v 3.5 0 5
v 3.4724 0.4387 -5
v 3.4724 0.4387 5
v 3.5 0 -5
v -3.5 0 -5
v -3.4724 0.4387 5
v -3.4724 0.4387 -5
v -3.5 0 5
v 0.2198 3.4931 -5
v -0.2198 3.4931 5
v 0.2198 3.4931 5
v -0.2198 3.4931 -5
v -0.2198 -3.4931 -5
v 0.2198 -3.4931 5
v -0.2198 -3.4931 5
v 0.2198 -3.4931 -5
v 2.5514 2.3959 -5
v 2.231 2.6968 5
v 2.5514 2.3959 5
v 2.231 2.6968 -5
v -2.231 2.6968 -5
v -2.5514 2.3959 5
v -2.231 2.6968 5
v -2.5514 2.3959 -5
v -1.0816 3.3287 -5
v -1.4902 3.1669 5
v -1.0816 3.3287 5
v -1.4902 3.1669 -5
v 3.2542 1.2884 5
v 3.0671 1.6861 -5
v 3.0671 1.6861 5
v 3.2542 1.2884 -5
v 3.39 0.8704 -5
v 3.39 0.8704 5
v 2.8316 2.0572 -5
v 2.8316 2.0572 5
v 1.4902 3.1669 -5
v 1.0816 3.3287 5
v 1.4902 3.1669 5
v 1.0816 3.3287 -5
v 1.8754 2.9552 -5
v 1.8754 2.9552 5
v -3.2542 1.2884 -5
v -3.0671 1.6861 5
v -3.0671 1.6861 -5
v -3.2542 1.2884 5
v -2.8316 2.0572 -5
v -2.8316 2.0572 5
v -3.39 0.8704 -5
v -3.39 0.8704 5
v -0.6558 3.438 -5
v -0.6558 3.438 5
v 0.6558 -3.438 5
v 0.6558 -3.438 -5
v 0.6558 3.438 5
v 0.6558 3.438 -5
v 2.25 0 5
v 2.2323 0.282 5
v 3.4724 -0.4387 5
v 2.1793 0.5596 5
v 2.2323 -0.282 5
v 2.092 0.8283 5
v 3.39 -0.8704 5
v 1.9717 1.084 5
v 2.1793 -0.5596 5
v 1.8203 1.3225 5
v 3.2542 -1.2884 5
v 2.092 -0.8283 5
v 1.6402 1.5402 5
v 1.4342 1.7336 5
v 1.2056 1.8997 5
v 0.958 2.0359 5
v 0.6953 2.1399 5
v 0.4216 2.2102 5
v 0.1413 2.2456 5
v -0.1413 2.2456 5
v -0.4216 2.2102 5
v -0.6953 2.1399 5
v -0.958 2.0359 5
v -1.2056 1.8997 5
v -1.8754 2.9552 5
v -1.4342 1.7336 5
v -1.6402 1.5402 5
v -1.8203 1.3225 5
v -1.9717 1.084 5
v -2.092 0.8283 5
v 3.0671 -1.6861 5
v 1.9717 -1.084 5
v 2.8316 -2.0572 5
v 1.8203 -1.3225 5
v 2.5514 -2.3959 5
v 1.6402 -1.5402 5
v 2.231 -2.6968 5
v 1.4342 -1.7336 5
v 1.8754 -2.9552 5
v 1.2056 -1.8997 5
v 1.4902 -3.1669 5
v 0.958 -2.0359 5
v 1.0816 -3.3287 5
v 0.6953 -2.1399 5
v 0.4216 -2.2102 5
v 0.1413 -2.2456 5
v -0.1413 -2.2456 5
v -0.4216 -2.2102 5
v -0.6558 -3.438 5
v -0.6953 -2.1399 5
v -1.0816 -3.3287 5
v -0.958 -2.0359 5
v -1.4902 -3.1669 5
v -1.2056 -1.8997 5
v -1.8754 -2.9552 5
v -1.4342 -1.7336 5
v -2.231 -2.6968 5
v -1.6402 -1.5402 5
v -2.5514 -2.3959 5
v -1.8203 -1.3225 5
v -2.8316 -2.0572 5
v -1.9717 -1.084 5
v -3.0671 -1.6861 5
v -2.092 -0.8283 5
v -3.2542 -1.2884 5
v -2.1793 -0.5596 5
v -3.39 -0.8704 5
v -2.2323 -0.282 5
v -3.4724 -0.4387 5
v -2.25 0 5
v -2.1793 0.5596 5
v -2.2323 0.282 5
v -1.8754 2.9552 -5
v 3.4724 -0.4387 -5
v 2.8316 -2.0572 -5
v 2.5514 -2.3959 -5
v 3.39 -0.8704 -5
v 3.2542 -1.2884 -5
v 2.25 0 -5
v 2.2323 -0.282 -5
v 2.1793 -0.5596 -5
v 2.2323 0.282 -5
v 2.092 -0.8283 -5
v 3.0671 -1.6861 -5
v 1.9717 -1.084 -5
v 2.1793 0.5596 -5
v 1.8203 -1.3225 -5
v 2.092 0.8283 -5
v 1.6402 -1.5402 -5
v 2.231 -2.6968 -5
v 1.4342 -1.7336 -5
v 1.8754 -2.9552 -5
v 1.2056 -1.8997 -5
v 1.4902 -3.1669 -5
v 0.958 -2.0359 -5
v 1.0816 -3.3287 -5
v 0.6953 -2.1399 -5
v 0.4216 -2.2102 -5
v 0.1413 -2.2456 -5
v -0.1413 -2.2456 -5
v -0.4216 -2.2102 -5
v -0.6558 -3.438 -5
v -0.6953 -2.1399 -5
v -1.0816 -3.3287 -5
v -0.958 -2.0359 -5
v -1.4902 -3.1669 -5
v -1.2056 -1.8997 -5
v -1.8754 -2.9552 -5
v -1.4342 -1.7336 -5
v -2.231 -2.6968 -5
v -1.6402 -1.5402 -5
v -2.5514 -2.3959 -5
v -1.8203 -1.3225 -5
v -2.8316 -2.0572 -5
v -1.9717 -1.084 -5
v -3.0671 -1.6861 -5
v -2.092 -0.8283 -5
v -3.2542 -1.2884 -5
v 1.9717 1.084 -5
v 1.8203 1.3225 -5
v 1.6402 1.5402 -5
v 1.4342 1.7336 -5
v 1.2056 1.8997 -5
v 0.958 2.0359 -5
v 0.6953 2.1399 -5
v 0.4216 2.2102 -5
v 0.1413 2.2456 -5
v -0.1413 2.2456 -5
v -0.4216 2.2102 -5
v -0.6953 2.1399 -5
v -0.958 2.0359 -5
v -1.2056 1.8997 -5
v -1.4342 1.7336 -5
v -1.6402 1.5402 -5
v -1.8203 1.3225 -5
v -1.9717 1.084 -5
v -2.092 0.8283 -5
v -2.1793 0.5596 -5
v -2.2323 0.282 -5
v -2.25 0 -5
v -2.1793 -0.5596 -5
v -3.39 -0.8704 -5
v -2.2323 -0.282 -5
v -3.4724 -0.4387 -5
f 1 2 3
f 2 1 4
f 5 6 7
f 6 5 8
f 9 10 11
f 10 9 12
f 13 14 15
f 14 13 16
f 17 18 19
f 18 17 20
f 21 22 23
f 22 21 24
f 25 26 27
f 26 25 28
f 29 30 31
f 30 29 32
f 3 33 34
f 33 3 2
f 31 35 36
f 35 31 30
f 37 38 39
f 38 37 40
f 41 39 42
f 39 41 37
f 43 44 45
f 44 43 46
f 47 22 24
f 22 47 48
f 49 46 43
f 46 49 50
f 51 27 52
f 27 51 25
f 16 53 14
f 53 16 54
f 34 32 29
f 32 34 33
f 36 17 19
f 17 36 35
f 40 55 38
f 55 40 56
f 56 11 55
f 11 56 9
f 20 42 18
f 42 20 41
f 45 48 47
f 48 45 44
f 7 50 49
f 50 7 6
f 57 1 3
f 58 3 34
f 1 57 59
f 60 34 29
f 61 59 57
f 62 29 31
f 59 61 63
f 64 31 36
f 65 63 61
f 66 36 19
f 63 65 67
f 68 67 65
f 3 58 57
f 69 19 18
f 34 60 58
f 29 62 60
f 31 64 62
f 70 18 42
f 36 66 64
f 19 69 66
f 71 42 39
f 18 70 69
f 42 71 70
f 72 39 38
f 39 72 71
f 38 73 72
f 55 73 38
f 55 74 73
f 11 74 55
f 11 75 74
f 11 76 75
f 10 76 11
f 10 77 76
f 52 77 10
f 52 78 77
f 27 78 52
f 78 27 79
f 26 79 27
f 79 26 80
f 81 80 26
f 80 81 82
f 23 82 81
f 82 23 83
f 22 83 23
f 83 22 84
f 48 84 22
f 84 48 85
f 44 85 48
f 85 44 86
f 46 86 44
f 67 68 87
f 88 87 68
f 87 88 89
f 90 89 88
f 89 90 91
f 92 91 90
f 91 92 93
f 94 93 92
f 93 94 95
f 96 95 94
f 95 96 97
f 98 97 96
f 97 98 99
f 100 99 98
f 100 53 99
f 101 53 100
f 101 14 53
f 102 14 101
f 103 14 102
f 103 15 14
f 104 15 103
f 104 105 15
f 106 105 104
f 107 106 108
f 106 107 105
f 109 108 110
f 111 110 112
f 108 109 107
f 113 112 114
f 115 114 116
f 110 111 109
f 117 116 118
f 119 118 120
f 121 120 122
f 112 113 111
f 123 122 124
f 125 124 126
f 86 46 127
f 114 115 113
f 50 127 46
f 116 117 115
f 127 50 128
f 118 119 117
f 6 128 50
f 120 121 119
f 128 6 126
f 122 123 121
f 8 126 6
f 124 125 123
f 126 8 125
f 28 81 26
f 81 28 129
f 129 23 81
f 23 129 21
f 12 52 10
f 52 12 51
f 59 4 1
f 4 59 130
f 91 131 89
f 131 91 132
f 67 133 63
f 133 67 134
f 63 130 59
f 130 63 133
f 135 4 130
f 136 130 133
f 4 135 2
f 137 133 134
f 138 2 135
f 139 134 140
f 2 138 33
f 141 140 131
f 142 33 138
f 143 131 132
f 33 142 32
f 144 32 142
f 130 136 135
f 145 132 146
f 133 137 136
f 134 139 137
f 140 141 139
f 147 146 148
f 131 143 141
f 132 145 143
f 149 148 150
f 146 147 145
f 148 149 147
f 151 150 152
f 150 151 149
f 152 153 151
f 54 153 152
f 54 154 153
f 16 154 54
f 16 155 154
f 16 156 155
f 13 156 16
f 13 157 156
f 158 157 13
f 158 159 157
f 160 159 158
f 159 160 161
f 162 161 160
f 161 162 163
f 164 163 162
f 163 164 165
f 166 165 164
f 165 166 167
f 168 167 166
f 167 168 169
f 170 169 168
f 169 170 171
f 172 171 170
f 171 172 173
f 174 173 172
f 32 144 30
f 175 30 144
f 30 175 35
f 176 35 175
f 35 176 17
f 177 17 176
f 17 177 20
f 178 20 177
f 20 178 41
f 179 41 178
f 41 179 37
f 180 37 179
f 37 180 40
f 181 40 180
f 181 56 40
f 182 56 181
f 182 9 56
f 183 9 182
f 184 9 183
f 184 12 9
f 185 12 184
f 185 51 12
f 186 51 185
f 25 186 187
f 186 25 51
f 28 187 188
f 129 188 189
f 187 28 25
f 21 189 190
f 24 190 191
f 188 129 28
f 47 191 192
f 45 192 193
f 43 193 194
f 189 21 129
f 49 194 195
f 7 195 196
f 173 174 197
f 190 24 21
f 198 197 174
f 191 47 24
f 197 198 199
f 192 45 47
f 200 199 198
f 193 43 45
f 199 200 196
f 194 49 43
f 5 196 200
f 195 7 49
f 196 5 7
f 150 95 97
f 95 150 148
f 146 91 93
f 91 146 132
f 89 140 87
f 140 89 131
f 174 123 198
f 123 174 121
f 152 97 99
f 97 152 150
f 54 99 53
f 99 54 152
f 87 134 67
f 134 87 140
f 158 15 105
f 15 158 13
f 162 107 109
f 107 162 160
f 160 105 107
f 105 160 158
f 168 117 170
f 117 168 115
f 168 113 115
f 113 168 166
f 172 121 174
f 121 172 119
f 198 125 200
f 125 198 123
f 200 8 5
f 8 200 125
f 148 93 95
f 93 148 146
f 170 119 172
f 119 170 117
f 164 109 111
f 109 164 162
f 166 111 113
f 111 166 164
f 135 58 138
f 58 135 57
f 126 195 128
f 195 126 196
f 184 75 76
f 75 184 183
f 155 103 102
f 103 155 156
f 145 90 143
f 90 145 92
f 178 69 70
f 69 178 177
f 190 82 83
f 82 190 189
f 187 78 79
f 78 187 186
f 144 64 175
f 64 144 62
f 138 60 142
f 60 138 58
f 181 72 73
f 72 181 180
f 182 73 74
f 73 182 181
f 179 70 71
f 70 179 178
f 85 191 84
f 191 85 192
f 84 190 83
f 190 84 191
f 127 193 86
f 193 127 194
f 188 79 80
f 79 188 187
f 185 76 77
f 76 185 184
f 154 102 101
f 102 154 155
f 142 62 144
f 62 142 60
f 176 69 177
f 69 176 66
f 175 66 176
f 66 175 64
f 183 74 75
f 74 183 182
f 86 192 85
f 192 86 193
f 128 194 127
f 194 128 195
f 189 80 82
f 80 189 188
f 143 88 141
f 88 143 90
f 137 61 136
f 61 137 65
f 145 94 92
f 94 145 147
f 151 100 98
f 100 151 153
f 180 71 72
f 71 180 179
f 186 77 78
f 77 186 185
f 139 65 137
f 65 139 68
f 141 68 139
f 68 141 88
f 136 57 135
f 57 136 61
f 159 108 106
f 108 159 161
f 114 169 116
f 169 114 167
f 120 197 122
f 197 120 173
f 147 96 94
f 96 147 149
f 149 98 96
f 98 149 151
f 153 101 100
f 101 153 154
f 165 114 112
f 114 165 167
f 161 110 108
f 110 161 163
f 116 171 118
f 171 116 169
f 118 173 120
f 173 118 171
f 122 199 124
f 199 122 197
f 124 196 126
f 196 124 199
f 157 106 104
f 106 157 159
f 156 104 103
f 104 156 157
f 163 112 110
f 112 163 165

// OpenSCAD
$fn = 50;


difference() {
	union() {
		translate(v = [0, 0, -5.0000000000]) {
			cylinder(h = 10, r = 3.5000000000);
		}
	}
	union() {
		translate(v = [0, 0, -100.0000000000]) {
			cylinder(h = 200, r = 2.2500000000);
		}
	}
}
